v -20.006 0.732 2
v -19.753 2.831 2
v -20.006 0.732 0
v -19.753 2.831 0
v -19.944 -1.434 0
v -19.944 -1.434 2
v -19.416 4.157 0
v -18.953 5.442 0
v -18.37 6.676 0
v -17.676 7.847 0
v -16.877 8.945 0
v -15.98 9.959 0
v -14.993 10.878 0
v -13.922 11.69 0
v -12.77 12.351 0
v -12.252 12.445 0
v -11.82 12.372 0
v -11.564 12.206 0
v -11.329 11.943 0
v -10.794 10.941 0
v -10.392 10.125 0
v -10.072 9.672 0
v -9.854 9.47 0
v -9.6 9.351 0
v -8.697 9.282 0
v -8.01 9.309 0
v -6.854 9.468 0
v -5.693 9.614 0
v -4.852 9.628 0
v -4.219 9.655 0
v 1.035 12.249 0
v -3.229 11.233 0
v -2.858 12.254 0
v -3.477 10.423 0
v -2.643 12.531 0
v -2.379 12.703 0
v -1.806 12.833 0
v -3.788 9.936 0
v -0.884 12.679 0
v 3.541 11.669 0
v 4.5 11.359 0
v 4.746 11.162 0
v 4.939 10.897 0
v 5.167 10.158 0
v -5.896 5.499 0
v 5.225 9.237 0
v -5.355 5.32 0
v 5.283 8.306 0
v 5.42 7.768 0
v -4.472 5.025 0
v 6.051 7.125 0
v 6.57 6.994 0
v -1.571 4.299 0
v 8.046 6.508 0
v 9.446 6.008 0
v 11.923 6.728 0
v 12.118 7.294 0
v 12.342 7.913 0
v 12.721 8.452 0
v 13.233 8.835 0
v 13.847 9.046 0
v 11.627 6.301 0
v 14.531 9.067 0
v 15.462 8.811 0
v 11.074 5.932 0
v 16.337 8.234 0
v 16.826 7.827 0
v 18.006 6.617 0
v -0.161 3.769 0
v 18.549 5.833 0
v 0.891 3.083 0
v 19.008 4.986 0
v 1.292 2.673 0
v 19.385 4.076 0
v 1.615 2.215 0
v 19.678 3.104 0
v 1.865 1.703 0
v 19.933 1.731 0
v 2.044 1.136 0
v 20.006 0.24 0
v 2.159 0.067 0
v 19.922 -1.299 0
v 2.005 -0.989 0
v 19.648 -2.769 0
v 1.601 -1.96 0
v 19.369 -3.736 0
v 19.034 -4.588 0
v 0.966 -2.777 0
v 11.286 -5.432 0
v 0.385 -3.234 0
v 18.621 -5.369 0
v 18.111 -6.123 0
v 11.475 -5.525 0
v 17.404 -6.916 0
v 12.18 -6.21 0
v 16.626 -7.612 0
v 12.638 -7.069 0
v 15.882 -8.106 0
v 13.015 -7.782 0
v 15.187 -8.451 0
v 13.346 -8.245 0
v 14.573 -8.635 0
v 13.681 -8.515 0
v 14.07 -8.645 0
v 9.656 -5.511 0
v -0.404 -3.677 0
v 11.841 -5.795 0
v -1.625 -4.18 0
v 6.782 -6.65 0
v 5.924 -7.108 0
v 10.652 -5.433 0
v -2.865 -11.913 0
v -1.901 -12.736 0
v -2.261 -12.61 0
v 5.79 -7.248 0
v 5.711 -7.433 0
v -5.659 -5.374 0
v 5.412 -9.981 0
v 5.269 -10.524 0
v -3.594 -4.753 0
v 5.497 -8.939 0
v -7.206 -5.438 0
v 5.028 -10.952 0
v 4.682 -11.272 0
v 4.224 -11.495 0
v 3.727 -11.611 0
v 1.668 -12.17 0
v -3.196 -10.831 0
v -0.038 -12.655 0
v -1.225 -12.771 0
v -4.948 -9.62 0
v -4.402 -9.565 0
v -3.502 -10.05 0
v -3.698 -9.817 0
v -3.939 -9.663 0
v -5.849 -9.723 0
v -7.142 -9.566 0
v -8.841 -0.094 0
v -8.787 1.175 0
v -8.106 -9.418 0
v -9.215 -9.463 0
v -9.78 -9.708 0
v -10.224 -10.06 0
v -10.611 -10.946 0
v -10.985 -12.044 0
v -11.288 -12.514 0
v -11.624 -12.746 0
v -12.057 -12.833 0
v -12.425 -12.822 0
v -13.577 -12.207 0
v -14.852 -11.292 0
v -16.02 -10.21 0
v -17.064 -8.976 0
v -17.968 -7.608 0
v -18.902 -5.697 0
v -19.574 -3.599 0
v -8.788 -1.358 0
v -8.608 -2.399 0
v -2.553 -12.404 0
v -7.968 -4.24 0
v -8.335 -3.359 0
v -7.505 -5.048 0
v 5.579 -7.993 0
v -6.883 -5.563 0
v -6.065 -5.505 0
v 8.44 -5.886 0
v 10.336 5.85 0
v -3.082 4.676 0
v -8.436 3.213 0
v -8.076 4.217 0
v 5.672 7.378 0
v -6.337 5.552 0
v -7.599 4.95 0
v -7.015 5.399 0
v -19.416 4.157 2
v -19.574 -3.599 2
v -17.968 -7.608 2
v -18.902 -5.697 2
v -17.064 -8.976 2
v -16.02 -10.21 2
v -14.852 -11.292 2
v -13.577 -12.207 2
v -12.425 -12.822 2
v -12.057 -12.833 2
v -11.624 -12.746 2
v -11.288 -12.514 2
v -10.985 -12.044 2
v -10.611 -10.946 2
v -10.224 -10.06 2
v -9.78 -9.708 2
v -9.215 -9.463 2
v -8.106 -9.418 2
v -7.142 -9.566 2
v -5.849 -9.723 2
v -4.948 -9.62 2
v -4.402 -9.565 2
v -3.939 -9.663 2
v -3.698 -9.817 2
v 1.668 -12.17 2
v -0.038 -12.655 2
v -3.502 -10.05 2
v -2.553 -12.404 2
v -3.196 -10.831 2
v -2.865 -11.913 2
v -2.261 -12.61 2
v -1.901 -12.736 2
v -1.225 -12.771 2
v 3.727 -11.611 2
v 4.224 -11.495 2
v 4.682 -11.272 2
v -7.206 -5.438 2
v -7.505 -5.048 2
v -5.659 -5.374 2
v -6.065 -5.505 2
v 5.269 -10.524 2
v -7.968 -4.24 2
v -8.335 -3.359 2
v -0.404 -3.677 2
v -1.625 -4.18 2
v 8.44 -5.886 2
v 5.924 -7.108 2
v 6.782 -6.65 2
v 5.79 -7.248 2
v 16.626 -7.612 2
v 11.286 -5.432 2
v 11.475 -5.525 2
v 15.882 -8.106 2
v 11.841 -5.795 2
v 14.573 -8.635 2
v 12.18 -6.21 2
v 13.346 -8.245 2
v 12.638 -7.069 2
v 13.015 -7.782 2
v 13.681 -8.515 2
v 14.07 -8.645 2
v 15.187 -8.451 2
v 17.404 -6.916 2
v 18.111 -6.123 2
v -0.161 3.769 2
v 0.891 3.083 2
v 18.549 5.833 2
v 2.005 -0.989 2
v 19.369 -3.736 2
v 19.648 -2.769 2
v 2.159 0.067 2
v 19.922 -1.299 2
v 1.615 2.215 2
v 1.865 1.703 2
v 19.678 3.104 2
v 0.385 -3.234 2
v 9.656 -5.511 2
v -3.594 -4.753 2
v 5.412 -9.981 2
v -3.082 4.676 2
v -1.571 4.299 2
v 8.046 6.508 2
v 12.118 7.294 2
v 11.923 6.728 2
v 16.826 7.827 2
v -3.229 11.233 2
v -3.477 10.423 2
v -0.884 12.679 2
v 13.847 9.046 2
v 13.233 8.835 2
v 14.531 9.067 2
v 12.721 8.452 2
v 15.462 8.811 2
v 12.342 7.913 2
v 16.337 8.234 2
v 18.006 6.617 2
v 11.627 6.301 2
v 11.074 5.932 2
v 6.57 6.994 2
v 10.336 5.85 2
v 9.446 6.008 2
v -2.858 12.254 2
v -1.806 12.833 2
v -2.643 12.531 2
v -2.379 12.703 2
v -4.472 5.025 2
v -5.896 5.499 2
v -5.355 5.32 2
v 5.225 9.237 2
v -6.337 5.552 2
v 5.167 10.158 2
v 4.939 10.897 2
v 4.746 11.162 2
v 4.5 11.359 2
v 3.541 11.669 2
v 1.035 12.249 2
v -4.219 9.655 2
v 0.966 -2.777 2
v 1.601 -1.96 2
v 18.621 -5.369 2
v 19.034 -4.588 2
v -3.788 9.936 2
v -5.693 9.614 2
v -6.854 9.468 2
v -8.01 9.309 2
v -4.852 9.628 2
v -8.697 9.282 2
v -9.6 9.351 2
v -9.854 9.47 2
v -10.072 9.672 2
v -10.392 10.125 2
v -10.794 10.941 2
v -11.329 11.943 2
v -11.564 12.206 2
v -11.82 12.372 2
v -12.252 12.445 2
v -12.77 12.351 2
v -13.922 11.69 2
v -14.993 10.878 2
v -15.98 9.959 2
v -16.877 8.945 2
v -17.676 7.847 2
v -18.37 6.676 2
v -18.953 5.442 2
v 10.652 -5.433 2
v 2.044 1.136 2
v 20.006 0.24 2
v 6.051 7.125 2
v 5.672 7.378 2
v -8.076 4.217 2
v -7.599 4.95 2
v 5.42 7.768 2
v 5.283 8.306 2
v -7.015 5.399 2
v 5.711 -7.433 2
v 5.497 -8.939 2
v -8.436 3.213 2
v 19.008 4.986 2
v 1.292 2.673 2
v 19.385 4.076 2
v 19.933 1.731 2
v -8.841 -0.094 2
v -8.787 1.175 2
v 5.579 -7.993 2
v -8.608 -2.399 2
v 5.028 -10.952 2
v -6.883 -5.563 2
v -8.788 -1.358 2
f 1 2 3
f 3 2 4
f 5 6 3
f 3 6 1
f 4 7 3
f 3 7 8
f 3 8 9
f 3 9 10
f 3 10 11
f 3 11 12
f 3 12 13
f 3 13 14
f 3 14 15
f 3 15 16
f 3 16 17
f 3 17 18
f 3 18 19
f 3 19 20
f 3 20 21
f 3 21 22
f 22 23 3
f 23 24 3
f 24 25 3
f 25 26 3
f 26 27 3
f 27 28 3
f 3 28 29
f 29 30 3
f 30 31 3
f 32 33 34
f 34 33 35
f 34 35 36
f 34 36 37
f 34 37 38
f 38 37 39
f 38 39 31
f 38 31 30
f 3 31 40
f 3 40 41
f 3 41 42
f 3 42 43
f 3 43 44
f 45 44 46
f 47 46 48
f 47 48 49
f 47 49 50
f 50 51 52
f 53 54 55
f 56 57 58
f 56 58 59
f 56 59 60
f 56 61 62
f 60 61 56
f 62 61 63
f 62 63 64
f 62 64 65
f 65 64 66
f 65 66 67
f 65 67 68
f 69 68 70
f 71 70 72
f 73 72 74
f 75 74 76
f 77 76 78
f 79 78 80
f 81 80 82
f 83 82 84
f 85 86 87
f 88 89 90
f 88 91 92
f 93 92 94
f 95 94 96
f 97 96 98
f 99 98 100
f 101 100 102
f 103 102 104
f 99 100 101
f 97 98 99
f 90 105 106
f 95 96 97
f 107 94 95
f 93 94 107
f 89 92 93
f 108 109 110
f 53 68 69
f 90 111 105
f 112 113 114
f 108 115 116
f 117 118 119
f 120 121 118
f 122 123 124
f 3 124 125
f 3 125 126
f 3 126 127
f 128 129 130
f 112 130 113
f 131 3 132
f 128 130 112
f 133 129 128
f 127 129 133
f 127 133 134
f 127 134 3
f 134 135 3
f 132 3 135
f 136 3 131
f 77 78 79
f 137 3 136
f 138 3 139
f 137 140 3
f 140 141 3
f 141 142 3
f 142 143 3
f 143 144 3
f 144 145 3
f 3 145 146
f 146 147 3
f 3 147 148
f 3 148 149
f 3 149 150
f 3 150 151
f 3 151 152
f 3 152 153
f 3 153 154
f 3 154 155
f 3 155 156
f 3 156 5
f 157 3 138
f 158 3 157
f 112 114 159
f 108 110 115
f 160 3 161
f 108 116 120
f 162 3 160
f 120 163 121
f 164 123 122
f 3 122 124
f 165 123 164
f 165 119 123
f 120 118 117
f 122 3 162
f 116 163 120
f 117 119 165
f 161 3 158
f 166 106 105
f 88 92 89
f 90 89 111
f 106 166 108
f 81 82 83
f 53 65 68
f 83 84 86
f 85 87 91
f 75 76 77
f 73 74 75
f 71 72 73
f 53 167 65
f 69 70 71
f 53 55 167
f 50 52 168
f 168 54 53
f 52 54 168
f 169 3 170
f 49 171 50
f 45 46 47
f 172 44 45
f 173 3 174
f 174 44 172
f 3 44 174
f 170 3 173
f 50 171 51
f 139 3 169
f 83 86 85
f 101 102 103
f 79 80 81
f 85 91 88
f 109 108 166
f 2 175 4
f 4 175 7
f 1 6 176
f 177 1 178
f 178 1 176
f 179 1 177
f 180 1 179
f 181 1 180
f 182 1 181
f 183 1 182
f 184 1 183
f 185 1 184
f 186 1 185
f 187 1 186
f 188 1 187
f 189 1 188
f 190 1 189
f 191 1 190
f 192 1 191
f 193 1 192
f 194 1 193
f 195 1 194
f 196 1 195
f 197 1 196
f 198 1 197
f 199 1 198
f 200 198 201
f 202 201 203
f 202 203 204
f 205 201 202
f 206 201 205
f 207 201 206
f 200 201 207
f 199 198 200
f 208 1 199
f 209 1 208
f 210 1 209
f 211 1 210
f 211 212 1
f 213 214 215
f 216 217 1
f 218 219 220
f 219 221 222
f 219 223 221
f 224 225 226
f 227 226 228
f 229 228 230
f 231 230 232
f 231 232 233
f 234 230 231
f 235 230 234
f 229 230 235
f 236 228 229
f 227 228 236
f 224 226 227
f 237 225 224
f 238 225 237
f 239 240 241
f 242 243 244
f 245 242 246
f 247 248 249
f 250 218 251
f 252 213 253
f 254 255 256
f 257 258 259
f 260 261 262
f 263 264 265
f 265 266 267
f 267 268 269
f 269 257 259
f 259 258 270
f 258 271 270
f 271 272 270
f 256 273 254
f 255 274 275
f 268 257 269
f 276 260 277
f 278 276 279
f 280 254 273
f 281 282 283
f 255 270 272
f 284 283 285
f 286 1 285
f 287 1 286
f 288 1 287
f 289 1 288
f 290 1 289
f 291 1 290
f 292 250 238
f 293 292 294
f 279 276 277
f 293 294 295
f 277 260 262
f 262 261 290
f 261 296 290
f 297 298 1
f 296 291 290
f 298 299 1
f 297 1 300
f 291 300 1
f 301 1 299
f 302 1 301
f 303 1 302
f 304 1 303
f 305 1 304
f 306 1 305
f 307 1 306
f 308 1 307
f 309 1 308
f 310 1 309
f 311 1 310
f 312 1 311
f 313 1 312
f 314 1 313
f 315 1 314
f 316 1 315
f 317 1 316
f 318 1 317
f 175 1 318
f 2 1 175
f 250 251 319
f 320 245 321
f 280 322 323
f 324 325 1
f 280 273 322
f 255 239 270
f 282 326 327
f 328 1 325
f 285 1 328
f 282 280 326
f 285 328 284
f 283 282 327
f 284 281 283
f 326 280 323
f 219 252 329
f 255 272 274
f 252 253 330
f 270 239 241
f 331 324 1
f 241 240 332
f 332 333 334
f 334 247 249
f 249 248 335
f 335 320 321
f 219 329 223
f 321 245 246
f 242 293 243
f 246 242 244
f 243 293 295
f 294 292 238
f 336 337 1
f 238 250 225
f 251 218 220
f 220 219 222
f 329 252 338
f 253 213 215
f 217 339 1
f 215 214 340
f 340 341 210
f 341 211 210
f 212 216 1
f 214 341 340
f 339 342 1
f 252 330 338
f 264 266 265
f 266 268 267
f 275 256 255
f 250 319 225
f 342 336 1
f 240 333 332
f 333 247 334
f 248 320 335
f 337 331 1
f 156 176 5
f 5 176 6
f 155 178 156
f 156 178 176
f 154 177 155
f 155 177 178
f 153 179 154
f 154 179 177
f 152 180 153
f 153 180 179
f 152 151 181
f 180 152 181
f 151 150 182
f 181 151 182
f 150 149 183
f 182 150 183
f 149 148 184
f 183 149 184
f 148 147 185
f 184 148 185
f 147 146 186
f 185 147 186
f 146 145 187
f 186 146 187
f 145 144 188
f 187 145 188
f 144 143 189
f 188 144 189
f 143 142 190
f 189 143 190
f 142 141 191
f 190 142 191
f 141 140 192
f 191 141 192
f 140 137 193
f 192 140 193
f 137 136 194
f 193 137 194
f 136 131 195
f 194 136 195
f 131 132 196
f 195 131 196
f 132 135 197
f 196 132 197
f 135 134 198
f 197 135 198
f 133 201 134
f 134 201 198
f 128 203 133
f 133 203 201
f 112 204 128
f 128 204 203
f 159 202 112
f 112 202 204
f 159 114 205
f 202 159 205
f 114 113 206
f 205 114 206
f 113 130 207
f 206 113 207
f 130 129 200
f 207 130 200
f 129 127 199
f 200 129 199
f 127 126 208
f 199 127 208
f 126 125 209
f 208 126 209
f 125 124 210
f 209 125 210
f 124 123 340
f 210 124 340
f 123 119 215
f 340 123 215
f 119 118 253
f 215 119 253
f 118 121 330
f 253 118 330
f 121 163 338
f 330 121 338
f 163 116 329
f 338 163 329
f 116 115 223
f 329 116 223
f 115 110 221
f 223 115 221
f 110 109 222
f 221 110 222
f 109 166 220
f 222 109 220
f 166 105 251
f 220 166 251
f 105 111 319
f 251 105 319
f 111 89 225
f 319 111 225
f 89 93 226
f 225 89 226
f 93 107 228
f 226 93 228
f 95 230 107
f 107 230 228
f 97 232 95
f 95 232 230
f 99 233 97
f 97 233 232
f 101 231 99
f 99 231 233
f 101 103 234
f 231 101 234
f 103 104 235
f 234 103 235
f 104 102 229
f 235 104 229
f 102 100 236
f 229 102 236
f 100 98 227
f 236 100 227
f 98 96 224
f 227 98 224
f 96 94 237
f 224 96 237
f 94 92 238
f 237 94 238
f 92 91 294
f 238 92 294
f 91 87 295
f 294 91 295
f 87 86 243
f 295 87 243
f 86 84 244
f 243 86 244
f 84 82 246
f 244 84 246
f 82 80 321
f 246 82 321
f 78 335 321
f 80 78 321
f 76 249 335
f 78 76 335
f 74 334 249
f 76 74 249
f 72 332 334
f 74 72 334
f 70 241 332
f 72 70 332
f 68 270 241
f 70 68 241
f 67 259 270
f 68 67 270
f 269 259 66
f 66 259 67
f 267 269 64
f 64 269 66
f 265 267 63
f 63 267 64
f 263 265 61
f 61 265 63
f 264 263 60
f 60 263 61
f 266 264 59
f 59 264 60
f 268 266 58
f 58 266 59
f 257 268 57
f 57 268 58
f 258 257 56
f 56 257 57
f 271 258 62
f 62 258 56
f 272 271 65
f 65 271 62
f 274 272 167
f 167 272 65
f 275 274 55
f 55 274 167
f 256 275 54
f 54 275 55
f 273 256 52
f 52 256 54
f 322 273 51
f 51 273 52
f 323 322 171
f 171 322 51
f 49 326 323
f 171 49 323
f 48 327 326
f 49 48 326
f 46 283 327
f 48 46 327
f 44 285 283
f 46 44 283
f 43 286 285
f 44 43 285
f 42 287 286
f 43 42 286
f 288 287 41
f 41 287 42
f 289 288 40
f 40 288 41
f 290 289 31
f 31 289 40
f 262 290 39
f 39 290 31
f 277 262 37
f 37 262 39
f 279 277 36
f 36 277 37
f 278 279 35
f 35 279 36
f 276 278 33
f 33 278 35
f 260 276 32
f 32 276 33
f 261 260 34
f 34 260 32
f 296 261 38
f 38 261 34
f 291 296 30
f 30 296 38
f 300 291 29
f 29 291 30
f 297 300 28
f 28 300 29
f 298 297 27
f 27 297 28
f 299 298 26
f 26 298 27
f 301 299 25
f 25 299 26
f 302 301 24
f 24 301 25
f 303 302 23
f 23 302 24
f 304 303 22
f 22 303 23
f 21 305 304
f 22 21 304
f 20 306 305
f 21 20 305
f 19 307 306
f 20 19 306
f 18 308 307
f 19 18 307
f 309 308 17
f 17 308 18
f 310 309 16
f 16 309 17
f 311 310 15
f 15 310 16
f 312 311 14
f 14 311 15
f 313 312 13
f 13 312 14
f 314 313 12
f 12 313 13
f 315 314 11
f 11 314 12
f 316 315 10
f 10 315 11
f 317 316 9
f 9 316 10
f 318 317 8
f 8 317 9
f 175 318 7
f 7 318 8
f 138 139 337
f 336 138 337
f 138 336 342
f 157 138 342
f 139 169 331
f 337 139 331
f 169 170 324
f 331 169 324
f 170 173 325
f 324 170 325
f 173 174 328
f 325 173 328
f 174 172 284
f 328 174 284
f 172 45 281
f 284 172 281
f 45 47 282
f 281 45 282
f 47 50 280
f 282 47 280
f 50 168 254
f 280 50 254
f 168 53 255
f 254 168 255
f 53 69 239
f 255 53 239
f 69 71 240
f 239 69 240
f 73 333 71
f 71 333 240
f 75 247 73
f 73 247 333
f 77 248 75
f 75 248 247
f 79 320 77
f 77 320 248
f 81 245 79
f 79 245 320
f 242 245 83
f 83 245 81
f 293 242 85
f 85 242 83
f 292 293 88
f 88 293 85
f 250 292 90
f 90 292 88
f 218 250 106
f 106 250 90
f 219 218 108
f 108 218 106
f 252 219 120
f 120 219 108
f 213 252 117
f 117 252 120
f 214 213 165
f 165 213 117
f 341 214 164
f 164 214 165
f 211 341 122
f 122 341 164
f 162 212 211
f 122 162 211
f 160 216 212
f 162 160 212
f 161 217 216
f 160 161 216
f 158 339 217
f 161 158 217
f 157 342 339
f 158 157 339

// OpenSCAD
// Module names are of the form poly_<inkscape-path-id>().  As a result,
// you can associate a polygon in this OpenSCAD program with the corresponding
// SVG element in the Inkscape document by looking for the XML element with
// the attribute id="inkscape-path-id".

// fudge value is used to ensure that subtracted solids are a tad taller
// in the z dimension than the polygon being subtracted from.  This helps
// keep the resulting .stl file manifold.
fudge = 0.1;

module poly_path3338(h)
{
  scale([25.4/90, -25.4/90, 1]) union()
  {
    difference()
    {
       linear_extrude(height=h)
         polygon([[-44.025860,45.430614],[-48.106570,43.252124],[-52.625702,40.011372],[-56.762732,36.176051],[-60.461691,31.804776],[-63.666610,26.956164],[-66.974110,20.185244],[-69.356228,12.754100],[-70.668966,5.082452],[-70.888574,-2.591837],[-69.991300,-10.030906],[-68.797505,-14.728980],[-67.155897,-19.283334],[-65.091986,-23.655210],[-62.631284,-27.805849],[-59.799301,-31.696492],[-56.621548,-35.288380],[-53.123538,-38.542754],[-49.330780,-41.420856],[-45.248050,-43.761806],[-43.413750,-44.094806],[-41.883490,-43.836976],[-40.973032,-43.248161],[-40.142014,-42.316606],[-38.245476,-38.766256],[-36.820776,-35.877436],[-35.689896,-34.272046],[-34.917482,-33.555637],[-34.014115,-33.133416],[-30.814566,-32.887586],[-28.381680,-32.983218],[-24.285436,-33.549436],[-20.171342,-34.066505],[-17.192456,-34.116316],[-14.948066,-34.208716],[-13.420695,-35.207629],[-12.318776,-36.932316],[-11.441656,-39.800886],[-10.125797,-43.418745],[-9.364710,-44.400397],[-8.430746,-45.010666],[-6.400585,-45.470094],[-3.133966,-44.925466],[3.667414,-43.402536],[12.547305,-41.346286],[15.946474,-40.249676],[16.817264,-39.551376],[17.500600,-38.610768],[18.309474,-35.994406],[18.513924,-32.729846],[18.719774,-29.430786],[19.205807,-27.522992],[20.096412,-26.144375],[21.439023,-25.246581],[23.281074,-24.781256],[28.508724,-23.060896],[33.470929,-21.287777],[36.625184,-20.727806],[39.237619,-21.017650],[41.196654,-22.324996],[42.246057,-23.840984],[42.938384,-25.843646],[43.731034,-28.037026],[45.073060,-29.947274],[46.888179,-31.304829],[49.064310,-32.050627],[51.489374,-32.125606],[54.784550,-31.219671],[57.887674,-29.174066],[59.619964,-27.733056],[63.800804,-23.446236],[65.724422,-20.668527],[67.353322,-17.667467],[68.686935,-14.444252],[69.724694,-11.000076],[70.629453,-6.133496],[70.888574,-0.849316],[70.590557,4.601743],[69.617134,9.811534],[68.630636,13.239229],[67.442180,16.258259],[65.980044,19.025191],[64.172504,21.696594],[61.669418,24.503841],[58.909974,26.971714],[56.273555,28.721898],[53.813238,29.944886],[51.637694,30.596731],[49.855594,30.633484],[48.475959,30.170409],[47.289352,29.216085],[46.117253,27.574005],[44.781144,25.047664],[43.158514,22.005044],[41.955908,20.532496],[40.657564,19.576774],[39.990174,19.248164],[37.743554,19.250164],[34.212754,19.527954],[29.906168,20.856044],[24.031084,23.564194],[20.988762,25.186760],[20.517251,25.681684],[20.235124,26.338754],[19.768647,28.322916],[19.478584,31.673444],[19.176274,35.367324],[18.667517,37.291281],[17.813840,38.804664],[16.589425,39.940384],[14.968454,40.731354],[13.206064,41.140544],[5.911804,43.122314],[-0.132886,44.842214],[-4.340976,45.251864],[-6.734616,45.127874],[-8.010187,44.680664],[-9.046726,43.953074],[-10.151965,42.212011],[-11.324966,38.376844],[-12.408391,35.610631],[-13.102427,34.785155],[-13.957746,34.237514],[-15.596392,33.893045],[-17.534326,34.086904],[-20.724592,34.452969],[-25.305606,33.894794],[-28.723196,33.371664],[-32.650886,33.528734],[-34.652652,34.397214],[-36.226956,35.644984],[-37.596596,38.784914],[-38.923878,42.673830],[-39.998156,44.341494],[-41.188753,45.162324],[-42.721610,45.470094],[-44.025860,45.430994]]);
       translate([0, 0, -fudge])
         linear_extrude(height=h+2*fudge)
           polygon([[-21.489946,19.504834],[-20.051696,19.043234],[-12.732946,16.843014],[-5.758327,14.812318],[-1.433466,13.028364],[1.363970,11.458916],[3.424284,9.839924],[5.672049,6.944864],[7.103157,3.502750],[7.648983,-0.237127],[7.240904,-4.025476],[6.606776,-6.034967],[5.723738,-7.846764],[4.578154,-9.472803],[3.156390,-10.925020],[-0.570223,-13.355724],[-5.565186,-15.234356],[-10.921116,-16.569736],[-15.847480,-17.805575],[-18.976296,-18.848956],[-20.891132,-19.484273],[-22.454526,-19.671576],[-24.856541,-19.130516],[-26.924730,-17.538306],[-28.617384,-14.941404],[-29.892796,-11.386266],[-31.136066,-4.164896],[-31.327696,0.333124],[-31.137066,4.812664],[-30.501110,8.501751],[-29.534871,11.901195],[-28.233404,15.025218],[-26.591766,17.888044],[-25.531505,19.267631],[-24.386996,19.712194],[-21.489496,19.504834]]);
    }
  }
}

poly_path3338(2);
